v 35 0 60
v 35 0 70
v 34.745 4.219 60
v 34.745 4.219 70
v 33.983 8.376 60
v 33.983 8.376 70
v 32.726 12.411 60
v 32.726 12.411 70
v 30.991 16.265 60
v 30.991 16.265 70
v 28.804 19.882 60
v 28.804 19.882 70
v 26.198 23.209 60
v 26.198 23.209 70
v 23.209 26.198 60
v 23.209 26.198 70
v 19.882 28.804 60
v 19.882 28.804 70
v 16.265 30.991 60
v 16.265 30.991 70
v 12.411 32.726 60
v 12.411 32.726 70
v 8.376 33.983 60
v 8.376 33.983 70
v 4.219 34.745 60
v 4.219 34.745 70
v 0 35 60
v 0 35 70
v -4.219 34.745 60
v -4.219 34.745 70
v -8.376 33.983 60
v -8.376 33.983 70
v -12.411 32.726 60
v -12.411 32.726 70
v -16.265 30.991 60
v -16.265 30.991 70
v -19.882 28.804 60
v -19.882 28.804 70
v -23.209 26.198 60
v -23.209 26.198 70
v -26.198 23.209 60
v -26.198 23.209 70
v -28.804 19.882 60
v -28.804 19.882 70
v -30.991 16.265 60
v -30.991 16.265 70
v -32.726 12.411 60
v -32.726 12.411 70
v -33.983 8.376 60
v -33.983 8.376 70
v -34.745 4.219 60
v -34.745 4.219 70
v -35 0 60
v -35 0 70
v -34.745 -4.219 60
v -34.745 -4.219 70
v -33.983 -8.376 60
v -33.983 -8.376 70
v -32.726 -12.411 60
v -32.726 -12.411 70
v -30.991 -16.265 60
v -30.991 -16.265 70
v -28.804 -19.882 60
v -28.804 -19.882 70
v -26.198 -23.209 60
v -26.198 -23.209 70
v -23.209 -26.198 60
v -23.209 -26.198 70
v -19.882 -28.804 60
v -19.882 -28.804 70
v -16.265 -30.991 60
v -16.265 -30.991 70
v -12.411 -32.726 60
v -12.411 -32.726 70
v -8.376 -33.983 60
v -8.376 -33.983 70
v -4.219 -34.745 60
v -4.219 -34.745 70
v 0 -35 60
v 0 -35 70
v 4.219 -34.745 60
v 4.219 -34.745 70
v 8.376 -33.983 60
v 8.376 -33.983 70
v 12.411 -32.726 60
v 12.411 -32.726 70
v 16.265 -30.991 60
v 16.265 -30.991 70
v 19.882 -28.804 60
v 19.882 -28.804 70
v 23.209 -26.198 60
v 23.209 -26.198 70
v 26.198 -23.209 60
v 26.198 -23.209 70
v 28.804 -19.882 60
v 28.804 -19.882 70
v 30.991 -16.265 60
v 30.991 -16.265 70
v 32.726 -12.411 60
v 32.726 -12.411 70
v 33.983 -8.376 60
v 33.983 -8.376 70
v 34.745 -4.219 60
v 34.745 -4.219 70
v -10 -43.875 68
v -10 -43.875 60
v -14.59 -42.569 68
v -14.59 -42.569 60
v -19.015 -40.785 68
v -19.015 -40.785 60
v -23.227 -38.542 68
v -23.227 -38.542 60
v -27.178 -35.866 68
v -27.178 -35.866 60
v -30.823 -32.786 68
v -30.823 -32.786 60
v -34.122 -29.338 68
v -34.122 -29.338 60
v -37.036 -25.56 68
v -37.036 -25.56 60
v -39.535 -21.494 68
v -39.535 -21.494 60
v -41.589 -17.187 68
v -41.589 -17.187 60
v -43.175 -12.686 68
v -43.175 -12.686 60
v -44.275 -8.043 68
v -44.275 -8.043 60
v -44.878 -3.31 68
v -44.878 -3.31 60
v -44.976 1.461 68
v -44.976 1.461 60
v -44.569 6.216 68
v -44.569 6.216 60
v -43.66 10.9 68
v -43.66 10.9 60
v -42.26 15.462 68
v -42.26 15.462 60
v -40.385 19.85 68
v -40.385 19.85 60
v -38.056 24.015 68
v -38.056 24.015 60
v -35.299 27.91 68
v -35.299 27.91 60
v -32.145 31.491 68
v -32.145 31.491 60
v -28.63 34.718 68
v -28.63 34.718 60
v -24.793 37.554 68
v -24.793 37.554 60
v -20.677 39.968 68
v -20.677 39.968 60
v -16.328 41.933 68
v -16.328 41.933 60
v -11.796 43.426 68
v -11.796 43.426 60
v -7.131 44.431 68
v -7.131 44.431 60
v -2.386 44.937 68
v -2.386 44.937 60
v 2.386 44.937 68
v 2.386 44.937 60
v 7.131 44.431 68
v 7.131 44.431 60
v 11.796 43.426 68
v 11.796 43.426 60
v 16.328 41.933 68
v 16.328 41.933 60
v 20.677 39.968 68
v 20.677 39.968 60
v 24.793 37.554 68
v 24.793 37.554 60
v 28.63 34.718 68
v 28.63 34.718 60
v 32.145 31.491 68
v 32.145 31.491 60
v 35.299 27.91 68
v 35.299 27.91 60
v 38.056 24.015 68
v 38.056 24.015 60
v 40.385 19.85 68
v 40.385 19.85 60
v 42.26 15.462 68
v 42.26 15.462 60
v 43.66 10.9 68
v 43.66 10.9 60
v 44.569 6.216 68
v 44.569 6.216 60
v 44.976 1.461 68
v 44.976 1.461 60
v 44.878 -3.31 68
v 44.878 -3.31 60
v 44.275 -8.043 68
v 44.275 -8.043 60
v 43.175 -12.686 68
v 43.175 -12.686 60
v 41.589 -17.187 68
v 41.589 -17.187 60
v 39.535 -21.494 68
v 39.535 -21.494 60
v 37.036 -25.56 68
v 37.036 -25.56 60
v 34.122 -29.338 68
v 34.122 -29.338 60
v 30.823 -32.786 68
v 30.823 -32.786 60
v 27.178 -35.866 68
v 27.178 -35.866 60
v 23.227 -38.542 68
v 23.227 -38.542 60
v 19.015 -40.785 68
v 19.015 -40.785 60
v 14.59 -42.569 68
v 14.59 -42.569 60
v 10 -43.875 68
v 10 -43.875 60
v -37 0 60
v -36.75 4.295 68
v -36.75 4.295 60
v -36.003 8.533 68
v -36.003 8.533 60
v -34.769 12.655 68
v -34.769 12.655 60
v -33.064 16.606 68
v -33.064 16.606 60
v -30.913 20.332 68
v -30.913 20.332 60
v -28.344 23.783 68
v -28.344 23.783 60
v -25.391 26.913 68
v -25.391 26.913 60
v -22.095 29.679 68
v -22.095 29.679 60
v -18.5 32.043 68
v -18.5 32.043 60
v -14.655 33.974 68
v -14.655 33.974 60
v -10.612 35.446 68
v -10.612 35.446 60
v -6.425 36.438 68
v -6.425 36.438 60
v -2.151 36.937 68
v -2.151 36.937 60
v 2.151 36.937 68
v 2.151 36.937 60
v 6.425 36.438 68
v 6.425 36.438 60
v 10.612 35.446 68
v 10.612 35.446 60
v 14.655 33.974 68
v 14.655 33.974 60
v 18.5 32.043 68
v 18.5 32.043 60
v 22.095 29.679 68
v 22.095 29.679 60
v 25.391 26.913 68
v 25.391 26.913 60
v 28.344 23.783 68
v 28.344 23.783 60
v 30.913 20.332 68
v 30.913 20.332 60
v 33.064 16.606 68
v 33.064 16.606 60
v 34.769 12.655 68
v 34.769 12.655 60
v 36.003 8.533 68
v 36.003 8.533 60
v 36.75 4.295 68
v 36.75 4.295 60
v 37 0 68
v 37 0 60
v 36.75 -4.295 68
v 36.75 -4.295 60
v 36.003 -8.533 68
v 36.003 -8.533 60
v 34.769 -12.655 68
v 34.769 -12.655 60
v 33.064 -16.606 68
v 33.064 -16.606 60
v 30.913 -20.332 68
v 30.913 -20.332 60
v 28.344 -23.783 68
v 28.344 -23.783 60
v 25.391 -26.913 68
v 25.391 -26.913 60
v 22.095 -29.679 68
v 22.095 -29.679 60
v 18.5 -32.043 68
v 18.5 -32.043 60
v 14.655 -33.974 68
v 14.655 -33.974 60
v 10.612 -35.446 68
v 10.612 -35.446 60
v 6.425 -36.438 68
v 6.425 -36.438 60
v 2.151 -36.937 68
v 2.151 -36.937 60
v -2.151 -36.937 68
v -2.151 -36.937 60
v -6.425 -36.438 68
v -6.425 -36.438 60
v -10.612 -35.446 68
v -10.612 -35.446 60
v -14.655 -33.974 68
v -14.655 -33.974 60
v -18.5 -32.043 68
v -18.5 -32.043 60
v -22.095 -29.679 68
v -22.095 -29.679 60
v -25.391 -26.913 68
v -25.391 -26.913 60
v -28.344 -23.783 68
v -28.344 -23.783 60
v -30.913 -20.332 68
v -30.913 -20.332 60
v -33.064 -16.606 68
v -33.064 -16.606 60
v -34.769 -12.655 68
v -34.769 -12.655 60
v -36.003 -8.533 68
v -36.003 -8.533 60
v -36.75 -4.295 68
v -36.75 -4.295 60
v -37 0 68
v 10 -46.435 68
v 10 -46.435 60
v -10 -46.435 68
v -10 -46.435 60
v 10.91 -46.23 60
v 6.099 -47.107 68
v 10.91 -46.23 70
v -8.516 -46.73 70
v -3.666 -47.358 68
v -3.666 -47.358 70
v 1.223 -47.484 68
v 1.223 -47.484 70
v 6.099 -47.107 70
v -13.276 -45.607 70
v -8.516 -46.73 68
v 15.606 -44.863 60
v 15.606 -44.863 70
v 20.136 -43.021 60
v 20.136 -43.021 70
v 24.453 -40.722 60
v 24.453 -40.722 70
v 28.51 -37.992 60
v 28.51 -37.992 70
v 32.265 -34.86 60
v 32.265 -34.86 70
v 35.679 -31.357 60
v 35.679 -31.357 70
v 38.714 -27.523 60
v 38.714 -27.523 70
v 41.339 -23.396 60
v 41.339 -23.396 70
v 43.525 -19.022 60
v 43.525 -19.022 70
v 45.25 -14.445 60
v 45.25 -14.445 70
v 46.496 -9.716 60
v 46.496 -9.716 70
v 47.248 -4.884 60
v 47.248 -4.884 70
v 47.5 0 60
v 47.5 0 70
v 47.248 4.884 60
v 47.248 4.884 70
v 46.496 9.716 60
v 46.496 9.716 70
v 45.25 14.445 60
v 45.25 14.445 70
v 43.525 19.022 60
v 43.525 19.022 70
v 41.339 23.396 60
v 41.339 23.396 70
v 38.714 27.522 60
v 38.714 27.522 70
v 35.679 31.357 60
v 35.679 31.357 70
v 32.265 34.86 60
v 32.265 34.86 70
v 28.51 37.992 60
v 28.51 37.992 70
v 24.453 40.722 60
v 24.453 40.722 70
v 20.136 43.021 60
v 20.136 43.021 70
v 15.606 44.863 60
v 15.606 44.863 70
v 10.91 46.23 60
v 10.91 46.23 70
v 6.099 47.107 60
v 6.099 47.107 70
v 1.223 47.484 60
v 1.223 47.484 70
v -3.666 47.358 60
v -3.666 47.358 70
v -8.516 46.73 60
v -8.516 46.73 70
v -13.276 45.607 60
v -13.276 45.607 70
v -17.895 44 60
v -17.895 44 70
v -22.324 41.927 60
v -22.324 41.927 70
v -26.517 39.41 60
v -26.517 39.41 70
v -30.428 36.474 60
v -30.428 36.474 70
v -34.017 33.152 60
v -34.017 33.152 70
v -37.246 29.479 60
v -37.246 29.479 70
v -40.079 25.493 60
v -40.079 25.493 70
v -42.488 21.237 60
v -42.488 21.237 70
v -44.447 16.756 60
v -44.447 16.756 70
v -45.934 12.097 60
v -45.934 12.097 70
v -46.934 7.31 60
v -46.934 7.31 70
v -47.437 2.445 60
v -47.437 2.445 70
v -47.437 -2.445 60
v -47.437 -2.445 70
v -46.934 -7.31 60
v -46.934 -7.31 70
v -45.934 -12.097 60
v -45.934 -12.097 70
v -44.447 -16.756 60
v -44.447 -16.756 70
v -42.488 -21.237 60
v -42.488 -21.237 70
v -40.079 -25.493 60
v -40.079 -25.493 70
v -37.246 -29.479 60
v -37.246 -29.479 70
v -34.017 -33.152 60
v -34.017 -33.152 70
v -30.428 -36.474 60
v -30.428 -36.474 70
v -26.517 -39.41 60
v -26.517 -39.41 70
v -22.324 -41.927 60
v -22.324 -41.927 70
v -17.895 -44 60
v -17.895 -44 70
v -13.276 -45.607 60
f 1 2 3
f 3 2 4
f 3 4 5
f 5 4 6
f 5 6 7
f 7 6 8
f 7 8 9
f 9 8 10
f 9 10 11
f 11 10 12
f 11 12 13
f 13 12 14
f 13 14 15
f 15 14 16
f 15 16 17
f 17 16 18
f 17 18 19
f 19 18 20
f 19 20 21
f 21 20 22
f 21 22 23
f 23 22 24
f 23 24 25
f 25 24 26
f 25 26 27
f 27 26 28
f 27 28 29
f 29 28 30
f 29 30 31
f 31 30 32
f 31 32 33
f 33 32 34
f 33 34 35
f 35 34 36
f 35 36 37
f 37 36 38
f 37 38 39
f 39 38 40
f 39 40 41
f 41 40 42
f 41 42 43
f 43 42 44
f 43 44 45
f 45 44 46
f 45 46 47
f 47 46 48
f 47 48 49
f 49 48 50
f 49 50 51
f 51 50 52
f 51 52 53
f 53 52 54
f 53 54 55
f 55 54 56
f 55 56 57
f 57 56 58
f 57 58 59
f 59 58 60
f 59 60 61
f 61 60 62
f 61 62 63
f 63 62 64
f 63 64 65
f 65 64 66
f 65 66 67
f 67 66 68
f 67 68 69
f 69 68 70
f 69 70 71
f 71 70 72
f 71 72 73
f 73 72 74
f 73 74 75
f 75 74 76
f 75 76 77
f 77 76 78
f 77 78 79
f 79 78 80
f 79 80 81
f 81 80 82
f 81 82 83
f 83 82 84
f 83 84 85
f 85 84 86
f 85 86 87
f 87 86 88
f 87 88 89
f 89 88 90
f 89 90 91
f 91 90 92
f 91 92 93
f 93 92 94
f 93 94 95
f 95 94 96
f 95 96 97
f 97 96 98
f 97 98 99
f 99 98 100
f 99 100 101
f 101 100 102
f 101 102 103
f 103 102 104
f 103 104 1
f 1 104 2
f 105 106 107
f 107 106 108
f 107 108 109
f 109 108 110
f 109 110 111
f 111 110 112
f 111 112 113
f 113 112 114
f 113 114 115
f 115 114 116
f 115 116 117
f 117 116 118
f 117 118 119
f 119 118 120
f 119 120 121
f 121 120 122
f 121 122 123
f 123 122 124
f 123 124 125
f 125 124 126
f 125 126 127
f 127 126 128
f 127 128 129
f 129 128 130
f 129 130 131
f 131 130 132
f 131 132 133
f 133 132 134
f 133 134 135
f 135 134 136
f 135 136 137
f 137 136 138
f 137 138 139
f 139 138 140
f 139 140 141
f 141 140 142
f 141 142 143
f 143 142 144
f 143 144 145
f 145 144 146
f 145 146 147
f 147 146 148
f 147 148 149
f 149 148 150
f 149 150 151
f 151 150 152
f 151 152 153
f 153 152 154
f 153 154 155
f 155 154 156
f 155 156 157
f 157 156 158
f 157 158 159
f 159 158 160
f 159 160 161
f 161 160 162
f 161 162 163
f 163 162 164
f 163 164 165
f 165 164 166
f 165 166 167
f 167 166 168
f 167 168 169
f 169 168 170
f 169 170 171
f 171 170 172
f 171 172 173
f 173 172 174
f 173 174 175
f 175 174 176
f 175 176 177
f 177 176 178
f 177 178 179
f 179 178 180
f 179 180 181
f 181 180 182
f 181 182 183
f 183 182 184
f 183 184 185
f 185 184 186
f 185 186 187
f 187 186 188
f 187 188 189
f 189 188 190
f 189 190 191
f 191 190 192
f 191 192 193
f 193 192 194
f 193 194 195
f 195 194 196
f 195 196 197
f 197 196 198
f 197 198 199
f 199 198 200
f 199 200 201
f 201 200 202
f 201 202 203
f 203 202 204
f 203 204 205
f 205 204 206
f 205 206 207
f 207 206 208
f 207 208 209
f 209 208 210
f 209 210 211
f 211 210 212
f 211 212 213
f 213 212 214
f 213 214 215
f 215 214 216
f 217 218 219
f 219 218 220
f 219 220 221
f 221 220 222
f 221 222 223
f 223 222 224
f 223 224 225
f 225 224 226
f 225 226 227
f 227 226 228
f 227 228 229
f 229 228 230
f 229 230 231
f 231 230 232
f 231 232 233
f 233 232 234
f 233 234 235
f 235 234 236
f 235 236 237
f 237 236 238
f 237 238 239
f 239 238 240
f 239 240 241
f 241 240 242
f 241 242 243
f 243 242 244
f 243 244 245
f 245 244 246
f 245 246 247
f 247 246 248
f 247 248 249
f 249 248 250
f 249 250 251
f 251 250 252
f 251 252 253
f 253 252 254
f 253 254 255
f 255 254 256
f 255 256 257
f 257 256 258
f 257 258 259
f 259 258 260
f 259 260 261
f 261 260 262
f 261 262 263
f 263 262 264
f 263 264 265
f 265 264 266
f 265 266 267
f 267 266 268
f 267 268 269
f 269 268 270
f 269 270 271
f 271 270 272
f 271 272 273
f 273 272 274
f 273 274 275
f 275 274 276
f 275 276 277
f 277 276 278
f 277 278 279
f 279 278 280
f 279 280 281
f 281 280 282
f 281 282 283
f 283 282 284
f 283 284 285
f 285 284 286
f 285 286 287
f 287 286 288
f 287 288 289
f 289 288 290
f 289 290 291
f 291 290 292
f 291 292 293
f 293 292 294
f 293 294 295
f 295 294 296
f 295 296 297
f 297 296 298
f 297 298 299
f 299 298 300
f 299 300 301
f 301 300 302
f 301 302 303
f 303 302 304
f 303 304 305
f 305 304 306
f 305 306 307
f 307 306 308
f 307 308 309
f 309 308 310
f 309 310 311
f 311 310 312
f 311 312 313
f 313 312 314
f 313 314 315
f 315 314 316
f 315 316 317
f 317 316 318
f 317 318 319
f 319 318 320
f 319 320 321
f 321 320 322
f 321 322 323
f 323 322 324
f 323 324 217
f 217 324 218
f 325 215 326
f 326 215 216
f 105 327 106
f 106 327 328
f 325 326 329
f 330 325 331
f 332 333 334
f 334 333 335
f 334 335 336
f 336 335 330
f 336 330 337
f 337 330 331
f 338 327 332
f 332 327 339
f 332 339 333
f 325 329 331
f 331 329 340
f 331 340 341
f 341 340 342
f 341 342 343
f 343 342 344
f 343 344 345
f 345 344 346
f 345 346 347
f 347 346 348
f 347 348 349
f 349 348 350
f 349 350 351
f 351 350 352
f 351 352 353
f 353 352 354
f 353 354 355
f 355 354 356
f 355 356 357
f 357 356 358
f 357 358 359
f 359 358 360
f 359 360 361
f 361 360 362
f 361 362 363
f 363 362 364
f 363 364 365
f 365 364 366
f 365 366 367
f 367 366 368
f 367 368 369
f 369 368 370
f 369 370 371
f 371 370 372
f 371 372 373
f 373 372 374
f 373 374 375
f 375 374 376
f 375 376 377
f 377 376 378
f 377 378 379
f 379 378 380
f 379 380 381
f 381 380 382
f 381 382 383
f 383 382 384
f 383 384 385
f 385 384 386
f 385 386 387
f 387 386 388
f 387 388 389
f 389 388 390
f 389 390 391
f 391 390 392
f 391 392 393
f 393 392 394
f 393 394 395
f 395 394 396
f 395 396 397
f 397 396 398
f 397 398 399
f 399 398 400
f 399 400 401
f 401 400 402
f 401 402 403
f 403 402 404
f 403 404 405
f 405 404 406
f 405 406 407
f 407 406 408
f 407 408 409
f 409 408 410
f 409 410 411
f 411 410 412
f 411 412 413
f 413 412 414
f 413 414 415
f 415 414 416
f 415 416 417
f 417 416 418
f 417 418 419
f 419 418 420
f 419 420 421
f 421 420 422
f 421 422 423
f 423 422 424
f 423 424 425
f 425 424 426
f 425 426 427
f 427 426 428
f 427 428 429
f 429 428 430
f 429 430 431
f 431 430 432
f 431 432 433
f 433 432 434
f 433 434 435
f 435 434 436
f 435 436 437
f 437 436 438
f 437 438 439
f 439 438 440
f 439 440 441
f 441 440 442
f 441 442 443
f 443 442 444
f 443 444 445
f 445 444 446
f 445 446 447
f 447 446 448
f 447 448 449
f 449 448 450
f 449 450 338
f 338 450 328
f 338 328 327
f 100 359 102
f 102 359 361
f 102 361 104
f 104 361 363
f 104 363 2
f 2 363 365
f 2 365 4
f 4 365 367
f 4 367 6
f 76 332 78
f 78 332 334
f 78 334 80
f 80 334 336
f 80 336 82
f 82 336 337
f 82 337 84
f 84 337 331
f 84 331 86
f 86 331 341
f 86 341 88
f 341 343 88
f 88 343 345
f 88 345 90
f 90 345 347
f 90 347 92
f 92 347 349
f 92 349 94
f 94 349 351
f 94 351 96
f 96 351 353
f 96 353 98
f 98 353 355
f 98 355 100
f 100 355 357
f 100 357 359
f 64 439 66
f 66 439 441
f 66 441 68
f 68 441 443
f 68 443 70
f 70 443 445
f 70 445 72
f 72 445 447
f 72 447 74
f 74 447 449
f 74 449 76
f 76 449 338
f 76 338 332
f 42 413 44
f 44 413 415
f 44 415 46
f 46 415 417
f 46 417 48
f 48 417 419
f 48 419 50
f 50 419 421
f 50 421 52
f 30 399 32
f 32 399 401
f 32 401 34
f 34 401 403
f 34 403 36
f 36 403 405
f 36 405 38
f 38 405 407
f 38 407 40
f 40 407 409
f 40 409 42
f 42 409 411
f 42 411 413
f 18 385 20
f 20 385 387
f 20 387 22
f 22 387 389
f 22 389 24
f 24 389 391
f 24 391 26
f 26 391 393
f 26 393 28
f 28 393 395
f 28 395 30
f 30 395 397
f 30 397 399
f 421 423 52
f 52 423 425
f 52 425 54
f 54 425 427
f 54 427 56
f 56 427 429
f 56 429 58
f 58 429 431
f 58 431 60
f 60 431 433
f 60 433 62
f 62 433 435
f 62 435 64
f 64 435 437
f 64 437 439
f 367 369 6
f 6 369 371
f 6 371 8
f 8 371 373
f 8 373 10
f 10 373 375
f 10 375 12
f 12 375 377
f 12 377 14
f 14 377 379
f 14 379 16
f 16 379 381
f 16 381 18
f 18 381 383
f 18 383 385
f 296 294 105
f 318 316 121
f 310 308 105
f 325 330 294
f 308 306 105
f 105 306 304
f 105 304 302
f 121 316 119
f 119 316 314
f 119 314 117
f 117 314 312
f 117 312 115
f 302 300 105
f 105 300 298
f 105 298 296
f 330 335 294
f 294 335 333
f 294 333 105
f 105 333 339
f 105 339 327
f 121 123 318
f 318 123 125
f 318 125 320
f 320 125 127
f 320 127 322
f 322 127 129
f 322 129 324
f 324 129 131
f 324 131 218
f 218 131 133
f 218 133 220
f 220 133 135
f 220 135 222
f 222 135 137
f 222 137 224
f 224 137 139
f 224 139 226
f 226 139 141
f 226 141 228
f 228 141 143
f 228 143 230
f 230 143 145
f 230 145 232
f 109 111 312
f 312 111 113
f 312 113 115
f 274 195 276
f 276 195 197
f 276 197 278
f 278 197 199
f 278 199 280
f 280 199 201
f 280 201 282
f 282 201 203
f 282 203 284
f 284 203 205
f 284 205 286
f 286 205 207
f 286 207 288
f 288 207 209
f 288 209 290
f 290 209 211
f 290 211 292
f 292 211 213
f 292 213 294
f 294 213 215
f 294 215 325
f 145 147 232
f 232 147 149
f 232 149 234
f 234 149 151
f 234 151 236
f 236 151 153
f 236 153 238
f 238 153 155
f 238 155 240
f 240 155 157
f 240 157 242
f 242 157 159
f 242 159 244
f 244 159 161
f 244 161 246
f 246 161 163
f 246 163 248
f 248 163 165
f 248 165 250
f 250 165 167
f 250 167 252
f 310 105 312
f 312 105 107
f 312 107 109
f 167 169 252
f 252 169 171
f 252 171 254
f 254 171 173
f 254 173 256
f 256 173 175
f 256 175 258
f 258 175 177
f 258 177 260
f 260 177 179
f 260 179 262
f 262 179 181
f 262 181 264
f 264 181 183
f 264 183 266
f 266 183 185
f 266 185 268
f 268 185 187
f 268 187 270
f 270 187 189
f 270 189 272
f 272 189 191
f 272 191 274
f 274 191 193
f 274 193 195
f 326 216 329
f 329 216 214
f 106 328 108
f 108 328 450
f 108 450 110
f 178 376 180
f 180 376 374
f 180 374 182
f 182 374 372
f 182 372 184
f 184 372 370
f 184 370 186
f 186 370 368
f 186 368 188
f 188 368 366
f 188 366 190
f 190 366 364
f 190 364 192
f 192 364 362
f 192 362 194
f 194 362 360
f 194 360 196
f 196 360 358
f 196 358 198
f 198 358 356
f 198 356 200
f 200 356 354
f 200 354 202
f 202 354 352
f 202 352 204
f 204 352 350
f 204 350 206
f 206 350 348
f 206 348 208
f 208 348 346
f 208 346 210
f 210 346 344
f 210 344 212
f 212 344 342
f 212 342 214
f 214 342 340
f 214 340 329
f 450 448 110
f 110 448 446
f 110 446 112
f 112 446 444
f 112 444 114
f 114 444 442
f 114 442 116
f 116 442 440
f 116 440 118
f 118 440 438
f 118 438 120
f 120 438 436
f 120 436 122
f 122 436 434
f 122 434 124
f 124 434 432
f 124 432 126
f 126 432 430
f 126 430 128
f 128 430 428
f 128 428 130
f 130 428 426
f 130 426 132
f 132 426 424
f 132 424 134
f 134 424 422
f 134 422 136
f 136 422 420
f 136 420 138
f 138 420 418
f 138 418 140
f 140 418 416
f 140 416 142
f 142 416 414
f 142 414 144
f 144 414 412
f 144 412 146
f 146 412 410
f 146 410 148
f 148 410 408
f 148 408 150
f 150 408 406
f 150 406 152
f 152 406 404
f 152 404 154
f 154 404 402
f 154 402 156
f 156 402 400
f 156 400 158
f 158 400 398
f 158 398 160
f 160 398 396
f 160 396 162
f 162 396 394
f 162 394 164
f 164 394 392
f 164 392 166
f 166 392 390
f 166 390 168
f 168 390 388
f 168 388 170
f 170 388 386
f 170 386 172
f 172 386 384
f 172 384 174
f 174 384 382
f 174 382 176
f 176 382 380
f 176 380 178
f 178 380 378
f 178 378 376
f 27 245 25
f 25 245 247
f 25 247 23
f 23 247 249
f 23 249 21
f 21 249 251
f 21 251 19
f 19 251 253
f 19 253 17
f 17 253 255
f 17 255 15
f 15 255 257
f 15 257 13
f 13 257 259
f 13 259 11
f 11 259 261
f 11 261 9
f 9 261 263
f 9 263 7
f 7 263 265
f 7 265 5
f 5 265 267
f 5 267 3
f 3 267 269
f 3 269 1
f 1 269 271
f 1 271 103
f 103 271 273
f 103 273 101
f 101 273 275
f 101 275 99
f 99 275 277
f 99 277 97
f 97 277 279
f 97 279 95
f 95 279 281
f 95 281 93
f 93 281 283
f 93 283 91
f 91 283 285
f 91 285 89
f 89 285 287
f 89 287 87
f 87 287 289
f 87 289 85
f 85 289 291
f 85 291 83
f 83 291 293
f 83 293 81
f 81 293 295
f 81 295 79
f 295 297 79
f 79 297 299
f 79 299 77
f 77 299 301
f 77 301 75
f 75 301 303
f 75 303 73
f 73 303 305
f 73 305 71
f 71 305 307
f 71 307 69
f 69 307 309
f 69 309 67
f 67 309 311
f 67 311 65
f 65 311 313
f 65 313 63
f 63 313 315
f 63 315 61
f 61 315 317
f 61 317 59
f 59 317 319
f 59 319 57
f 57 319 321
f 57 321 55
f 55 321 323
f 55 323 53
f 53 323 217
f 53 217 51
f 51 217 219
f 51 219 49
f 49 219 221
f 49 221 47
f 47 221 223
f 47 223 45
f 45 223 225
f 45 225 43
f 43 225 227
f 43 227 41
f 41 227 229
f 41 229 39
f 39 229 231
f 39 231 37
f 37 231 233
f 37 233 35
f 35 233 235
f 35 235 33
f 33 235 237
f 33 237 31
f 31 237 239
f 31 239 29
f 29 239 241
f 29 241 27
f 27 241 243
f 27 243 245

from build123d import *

# Parameters (mm, degrees)
ESQUISSE1_R                  = 48.5
BOSS_EXTRU_1_DEPTH           = 70
ESQUISSE2_R                  = 48.5
ESQUISSE2_R_2                = 47.5
ENL_V_MAT_EXTRU_1_DEPTH      = 10
ESQUISSE3_R                  = 35
ENL_V_MAT_EXTRU_2_DEPTH      = 71
ESQUISSE5_R                  = 45
ESQUISSE5_R_2                = 37
ENL_V_MAT_EXTRU_3_DEPTH      = 68
ESQUISSE6_W                  = 20
ESQUISSE6_H                  = 4.679506057
ENL_V_MAT_EXTRU_5_DEPTH      = 68
BOSS_EXTRU_2_DEPTH           = 10
ESQUISSE9_W                  = 97.082032755
ESQUISSE9_H                  = 83.812700188
ENL_V_MAT_EXTRU_6_DEPTH      = 49.5
ENL_V_MAT_EXTRU_6_DEPTH_BACK = 48.5


with BuildPart() as part:
    # Esquisse1 → Boss.-Extru.1 (new body)
    with BuildSketch(Plane.XY):
        Circle(ESQUISSE1_R)
    extrude(amount=BOSS_EXTRU_1_DEPTH)

    # Esquisse2 → Enlèv. mat.-Extru.1 (cut)
    with BuildSketch(Plane.XY.offset(70)):
        Circle(ESQUISSE2_R)
        Circle(ESQUISSE2_R_2, mode=Mode.SUBTRACT)
    extrude(amount=-ENL_V_MAT_EXTRU_1_DEPTH, mode=Mode.SUBTRACT)

    # Esquisse3 → Enlèv. mat.-Extru.2 (cut, through all)
    with BuildSketch(Plane.XY.offset(70)):
        Circle(ESQUISSE3_R)
    extrude(amount=-ENL_V_MAT_EXTRU_2_DEPTH, mode=Mode.SUBTRACT)

    # Esquisse5 → Enlèv. mat.-Extru.3 (cut)
    with BuildSketch(Plane(origin=(0, 0, 0), x_dir=(-1, 0, 0), z_dir=(0, 0, -1))):
        Circle(ESQUISSE5_R)
        Circle(ESQUISSE5_R_2, mode=Mode.SUBTRACT)
    extrude(amount=-ENL_V_MAT_EXTRU_3_DEPTH, mode=Mode.SUBTRACT)

    # Esquisse6 → Enlèv. mat.-Extru.5 (cut)
    with BuildSketch(Plane(origin=(0, 0, 0), x_dir=(-1, 0, 0), z_dir=(0, 0, -1))):
        with Locations((0, -46.214574966)):
            Rectangle(ESQUISSE6_W, ESQUISSE6_H)
    extrude(amount=-ENL_V_MAT_EXTRU_5_DEPTH, mode=Mode.SUBTRACT)

    # Esquisse8 → Boss.-Extru.2 (add)
    with BuildSketch(Plane(origin=(0, 0, 0), x_dir=(-1, 0, 0), z_dir=(0, 0, -1))):
        with BuildLine():
            ThreePointArc((34.294678888, -34.294678888), (48.5, 0), (34.294678888, 34.294678888))
            Line((34.294678888, 34.294678888), (31.819805153, 31.819805153))
            ThreePointArc((31.819805153, 31.819805153), (45, 0), (31.819805153, -31.819805153))
            Line((31.819805153, -31.819805153), (34.294678888, -34.294678888))
        make_face()
        with BuildLine():
            ThreePointArc((-34.294678888, -34.294678888), (-48.5, 0), (-34.294678888, 34.294678888))
            Line((-34.294678888, 34.294678888), (-31.819805153, 31.819805153))
            ThreePointArc((-31.819805153, 31.819805153), (-45, 0), (-31.819805153, -31.819805153))
            Line((-31.819805153, -31.819805153), (-34.294678888, -34.294678888))
        make_face()
    extrude(amount=BOSS_EXTRU_2_DEPTH)

    # Esquisse9 → Enlèv. mat.-Extru.6 (cut, two sides)
    with BuildSketch(Plane(origin=(0, 0, 0), x_dir=(1, 0, 0), z_dir=(0, 1, 0))) as enl_v_mat_extru_6_sk:
        with Locations((0.041016378, -18.093649906)):
            Rectangle(ESQUISSE9_W, ESQUISSE9_H)
    extrude(amount=ENL_V_MAT_EXTRU_6_DEPTH, mode=Mode.SUBTRACT)
    extrude(enl_v_mat_extru_6_sk.sketch, amount=-ENL_V_MAT_EXTRU_6_DEPTH_BACK, mode=Mode.SUBTRACT)


solid = part.part
